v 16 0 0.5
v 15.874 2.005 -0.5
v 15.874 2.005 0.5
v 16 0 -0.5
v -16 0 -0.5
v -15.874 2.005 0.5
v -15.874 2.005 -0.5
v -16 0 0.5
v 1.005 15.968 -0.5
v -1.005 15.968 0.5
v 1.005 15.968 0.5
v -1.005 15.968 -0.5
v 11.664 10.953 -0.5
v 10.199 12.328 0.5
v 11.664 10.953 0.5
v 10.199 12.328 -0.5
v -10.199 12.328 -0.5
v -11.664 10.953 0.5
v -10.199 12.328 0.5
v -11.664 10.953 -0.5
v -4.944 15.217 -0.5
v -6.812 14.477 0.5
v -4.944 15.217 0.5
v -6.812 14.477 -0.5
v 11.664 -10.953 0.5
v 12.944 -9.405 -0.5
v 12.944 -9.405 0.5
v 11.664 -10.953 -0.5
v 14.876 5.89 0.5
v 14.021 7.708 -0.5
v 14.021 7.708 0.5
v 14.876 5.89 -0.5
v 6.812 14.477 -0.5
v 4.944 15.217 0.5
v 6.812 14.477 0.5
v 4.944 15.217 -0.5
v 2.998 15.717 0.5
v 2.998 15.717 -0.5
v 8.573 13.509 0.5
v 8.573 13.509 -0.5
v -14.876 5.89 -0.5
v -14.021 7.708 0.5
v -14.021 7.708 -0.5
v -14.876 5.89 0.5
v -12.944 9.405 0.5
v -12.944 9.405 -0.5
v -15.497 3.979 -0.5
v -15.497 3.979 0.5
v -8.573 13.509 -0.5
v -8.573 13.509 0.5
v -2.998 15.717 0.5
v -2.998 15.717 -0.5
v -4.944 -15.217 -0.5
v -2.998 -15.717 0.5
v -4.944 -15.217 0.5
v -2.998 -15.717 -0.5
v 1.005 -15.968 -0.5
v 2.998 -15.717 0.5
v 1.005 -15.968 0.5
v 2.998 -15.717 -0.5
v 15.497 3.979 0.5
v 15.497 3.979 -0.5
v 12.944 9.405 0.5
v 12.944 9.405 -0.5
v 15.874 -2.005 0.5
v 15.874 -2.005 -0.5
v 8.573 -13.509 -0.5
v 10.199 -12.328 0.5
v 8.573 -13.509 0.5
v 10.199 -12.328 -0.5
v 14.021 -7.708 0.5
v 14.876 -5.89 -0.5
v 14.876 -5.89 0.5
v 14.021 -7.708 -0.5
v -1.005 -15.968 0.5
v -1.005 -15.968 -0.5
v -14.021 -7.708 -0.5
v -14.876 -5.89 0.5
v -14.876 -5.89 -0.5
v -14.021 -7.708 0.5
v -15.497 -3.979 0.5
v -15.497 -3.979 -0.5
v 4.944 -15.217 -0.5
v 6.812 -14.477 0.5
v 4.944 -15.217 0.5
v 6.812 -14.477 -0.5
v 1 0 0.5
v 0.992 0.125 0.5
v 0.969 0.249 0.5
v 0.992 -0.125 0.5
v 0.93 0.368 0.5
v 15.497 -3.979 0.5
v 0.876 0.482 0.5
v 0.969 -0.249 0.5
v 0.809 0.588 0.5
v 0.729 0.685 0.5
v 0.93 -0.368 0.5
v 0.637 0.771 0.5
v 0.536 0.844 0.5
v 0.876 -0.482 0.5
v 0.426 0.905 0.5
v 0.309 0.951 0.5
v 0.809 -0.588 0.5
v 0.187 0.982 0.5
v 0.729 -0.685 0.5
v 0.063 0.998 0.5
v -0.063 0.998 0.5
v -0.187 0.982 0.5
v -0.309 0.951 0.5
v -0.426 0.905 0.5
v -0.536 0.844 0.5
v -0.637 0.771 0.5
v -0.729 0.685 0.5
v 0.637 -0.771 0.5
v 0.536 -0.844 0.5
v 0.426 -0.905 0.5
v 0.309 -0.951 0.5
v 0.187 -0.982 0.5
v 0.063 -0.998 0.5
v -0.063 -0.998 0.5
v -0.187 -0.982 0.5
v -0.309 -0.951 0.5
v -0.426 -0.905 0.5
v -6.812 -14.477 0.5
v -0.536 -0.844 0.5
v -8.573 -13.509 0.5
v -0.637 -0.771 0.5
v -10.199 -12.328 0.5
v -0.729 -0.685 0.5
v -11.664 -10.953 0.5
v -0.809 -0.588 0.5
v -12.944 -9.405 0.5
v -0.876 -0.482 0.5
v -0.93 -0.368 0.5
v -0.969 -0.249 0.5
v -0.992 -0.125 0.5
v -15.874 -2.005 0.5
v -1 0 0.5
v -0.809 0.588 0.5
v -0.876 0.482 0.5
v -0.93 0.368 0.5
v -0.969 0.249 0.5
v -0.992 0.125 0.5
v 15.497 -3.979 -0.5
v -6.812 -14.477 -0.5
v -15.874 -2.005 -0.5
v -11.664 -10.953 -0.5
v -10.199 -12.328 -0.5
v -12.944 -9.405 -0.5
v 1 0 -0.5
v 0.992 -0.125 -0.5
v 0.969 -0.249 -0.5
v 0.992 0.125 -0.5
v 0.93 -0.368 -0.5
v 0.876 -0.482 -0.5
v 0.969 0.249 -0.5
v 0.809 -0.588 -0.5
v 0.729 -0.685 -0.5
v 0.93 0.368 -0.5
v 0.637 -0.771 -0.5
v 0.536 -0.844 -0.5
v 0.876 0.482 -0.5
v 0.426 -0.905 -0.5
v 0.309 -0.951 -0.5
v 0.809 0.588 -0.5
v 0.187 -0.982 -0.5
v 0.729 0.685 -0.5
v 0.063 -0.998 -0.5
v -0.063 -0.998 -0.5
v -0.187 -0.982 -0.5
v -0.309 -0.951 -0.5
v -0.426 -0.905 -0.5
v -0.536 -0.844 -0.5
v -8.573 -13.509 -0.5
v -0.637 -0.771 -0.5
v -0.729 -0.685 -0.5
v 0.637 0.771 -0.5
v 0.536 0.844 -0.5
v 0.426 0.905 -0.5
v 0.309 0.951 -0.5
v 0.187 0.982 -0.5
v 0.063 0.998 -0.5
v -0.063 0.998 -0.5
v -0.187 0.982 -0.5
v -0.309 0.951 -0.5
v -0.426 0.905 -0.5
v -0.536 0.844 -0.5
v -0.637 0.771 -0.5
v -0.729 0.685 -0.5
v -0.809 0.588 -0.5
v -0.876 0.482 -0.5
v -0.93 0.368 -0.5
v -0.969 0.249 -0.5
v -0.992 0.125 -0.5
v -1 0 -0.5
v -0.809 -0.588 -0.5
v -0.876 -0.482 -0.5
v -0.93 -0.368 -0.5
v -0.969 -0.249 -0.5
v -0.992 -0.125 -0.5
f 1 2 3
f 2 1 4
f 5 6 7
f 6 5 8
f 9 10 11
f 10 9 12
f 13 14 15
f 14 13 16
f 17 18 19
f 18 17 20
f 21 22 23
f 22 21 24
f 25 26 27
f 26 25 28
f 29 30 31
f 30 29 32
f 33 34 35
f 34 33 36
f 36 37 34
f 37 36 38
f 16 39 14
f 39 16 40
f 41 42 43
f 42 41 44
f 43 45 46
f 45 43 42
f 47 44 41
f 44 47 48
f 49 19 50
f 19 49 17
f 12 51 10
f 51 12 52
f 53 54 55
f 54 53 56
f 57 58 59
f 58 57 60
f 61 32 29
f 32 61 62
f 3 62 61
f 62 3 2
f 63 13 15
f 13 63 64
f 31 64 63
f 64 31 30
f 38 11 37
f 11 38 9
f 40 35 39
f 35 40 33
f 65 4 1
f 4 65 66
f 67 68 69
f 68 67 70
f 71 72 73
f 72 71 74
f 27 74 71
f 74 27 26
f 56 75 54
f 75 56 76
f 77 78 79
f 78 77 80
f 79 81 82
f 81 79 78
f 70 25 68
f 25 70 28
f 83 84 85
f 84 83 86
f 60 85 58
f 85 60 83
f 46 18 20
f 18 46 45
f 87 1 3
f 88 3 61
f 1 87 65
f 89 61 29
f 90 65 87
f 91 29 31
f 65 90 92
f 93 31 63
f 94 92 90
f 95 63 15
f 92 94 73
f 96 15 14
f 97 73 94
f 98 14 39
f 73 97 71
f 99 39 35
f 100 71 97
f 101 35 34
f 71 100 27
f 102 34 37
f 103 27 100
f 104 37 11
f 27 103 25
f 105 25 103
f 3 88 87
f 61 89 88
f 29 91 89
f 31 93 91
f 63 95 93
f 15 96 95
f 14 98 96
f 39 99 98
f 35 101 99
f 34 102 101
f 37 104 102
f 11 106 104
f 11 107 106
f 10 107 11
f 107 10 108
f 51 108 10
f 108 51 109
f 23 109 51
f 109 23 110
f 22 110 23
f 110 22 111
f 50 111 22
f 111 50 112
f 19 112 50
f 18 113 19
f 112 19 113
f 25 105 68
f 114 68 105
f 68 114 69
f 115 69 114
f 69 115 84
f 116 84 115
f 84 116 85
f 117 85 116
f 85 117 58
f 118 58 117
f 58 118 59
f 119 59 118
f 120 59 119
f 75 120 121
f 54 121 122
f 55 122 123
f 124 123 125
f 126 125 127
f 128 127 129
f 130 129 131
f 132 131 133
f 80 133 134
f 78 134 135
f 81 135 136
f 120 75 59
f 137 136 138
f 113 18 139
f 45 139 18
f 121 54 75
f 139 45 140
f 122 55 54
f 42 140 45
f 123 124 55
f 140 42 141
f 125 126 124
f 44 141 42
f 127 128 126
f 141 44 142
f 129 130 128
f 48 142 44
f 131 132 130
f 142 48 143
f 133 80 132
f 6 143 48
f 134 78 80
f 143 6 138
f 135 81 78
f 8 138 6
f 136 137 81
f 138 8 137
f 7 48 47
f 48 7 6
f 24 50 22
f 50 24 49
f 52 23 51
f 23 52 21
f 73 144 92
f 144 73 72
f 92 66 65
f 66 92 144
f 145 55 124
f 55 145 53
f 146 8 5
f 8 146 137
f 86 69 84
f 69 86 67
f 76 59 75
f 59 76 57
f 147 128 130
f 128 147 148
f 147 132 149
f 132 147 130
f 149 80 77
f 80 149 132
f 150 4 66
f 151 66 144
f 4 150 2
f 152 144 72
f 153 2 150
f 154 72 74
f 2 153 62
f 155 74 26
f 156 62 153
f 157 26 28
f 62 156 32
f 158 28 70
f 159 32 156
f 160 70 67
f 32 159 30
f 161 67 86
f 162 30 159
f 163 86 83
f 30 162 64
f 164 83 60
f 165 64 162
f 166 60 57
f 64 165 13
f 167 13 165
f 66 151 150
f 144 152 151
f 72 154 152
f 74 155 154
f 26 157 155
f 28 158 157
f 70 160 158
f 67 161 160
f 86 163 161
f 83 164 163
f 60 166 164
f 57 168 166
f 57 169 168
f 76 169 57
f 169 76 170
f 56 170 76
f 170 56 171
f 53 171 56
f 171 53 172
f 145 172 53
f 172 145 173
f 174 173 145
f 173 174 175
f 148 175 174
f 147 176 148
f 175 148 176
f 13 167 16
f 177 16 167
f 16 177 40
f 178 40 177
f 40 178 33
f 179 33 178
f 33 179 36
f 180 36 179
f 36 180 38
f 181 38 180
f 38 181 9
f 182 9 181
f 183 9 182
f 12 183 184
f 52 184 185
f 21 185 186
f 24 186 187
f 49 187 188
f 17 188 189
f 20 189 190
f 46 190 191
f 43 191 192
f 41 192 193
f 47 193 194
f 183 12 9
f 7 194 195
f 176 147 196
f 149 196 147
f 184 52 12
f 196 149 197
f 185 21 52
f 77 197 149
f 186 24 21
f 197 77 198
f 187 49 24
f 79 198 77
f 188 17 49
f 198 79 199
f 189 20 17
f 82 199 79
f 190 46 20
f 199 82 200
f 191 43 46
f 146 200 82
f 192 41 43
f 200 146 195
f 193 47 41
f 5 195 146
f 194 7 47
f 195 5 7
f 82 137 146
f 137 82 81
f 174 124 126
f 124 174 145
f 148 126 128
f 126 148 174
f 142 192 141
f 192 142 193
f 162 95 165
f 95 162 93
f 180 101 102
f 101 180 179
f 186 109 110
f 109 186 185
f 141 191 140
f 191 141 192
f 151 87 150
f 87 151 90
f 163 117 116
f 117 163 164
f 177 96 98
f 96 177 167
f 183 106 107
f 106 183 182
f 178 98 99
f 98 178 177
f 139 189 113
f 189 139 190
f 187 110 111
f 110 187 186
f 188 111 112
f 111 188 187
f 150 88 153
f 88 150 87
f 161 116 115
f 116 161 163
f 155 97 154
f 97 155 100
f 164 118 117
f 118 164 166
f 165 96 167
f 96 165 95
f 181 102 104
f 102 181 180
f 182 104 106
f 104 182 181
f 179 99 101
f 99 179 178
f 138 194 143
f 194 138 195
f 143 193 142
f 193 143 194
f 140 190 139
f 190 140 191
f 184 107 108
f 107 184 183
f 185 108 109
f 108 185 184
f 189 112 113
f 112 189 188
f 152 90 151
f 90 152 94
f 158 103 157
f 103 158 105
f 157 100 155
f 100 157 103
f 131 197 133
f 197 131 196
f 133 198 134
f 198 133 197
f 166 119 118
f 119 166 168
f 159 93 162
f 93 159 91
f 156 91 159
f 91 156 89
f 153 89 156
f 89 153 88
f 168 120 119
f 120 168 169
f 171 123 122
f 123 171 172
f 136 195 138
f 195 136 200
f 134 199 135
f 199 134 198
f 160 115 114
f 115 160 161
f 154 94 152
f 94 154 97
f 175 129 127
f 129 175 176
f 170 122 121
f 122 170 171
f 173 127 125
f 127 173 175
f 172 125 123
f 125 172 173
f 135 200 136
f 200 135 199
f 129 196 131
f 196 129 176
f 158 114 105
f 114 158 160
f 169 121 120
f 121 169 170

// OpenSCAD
$fn = 50;


difference() {
	union() {
		translate(v = [0, 0, -0.5000000000]) {
			cylinder(h = 1, r = 16.0000000000);
		}
	}
	union() {
		translate(v = [0, 0, -100.0000000000]) {
			cylinder(h = 200, r = 1.0000000000);
		}
	}
}
